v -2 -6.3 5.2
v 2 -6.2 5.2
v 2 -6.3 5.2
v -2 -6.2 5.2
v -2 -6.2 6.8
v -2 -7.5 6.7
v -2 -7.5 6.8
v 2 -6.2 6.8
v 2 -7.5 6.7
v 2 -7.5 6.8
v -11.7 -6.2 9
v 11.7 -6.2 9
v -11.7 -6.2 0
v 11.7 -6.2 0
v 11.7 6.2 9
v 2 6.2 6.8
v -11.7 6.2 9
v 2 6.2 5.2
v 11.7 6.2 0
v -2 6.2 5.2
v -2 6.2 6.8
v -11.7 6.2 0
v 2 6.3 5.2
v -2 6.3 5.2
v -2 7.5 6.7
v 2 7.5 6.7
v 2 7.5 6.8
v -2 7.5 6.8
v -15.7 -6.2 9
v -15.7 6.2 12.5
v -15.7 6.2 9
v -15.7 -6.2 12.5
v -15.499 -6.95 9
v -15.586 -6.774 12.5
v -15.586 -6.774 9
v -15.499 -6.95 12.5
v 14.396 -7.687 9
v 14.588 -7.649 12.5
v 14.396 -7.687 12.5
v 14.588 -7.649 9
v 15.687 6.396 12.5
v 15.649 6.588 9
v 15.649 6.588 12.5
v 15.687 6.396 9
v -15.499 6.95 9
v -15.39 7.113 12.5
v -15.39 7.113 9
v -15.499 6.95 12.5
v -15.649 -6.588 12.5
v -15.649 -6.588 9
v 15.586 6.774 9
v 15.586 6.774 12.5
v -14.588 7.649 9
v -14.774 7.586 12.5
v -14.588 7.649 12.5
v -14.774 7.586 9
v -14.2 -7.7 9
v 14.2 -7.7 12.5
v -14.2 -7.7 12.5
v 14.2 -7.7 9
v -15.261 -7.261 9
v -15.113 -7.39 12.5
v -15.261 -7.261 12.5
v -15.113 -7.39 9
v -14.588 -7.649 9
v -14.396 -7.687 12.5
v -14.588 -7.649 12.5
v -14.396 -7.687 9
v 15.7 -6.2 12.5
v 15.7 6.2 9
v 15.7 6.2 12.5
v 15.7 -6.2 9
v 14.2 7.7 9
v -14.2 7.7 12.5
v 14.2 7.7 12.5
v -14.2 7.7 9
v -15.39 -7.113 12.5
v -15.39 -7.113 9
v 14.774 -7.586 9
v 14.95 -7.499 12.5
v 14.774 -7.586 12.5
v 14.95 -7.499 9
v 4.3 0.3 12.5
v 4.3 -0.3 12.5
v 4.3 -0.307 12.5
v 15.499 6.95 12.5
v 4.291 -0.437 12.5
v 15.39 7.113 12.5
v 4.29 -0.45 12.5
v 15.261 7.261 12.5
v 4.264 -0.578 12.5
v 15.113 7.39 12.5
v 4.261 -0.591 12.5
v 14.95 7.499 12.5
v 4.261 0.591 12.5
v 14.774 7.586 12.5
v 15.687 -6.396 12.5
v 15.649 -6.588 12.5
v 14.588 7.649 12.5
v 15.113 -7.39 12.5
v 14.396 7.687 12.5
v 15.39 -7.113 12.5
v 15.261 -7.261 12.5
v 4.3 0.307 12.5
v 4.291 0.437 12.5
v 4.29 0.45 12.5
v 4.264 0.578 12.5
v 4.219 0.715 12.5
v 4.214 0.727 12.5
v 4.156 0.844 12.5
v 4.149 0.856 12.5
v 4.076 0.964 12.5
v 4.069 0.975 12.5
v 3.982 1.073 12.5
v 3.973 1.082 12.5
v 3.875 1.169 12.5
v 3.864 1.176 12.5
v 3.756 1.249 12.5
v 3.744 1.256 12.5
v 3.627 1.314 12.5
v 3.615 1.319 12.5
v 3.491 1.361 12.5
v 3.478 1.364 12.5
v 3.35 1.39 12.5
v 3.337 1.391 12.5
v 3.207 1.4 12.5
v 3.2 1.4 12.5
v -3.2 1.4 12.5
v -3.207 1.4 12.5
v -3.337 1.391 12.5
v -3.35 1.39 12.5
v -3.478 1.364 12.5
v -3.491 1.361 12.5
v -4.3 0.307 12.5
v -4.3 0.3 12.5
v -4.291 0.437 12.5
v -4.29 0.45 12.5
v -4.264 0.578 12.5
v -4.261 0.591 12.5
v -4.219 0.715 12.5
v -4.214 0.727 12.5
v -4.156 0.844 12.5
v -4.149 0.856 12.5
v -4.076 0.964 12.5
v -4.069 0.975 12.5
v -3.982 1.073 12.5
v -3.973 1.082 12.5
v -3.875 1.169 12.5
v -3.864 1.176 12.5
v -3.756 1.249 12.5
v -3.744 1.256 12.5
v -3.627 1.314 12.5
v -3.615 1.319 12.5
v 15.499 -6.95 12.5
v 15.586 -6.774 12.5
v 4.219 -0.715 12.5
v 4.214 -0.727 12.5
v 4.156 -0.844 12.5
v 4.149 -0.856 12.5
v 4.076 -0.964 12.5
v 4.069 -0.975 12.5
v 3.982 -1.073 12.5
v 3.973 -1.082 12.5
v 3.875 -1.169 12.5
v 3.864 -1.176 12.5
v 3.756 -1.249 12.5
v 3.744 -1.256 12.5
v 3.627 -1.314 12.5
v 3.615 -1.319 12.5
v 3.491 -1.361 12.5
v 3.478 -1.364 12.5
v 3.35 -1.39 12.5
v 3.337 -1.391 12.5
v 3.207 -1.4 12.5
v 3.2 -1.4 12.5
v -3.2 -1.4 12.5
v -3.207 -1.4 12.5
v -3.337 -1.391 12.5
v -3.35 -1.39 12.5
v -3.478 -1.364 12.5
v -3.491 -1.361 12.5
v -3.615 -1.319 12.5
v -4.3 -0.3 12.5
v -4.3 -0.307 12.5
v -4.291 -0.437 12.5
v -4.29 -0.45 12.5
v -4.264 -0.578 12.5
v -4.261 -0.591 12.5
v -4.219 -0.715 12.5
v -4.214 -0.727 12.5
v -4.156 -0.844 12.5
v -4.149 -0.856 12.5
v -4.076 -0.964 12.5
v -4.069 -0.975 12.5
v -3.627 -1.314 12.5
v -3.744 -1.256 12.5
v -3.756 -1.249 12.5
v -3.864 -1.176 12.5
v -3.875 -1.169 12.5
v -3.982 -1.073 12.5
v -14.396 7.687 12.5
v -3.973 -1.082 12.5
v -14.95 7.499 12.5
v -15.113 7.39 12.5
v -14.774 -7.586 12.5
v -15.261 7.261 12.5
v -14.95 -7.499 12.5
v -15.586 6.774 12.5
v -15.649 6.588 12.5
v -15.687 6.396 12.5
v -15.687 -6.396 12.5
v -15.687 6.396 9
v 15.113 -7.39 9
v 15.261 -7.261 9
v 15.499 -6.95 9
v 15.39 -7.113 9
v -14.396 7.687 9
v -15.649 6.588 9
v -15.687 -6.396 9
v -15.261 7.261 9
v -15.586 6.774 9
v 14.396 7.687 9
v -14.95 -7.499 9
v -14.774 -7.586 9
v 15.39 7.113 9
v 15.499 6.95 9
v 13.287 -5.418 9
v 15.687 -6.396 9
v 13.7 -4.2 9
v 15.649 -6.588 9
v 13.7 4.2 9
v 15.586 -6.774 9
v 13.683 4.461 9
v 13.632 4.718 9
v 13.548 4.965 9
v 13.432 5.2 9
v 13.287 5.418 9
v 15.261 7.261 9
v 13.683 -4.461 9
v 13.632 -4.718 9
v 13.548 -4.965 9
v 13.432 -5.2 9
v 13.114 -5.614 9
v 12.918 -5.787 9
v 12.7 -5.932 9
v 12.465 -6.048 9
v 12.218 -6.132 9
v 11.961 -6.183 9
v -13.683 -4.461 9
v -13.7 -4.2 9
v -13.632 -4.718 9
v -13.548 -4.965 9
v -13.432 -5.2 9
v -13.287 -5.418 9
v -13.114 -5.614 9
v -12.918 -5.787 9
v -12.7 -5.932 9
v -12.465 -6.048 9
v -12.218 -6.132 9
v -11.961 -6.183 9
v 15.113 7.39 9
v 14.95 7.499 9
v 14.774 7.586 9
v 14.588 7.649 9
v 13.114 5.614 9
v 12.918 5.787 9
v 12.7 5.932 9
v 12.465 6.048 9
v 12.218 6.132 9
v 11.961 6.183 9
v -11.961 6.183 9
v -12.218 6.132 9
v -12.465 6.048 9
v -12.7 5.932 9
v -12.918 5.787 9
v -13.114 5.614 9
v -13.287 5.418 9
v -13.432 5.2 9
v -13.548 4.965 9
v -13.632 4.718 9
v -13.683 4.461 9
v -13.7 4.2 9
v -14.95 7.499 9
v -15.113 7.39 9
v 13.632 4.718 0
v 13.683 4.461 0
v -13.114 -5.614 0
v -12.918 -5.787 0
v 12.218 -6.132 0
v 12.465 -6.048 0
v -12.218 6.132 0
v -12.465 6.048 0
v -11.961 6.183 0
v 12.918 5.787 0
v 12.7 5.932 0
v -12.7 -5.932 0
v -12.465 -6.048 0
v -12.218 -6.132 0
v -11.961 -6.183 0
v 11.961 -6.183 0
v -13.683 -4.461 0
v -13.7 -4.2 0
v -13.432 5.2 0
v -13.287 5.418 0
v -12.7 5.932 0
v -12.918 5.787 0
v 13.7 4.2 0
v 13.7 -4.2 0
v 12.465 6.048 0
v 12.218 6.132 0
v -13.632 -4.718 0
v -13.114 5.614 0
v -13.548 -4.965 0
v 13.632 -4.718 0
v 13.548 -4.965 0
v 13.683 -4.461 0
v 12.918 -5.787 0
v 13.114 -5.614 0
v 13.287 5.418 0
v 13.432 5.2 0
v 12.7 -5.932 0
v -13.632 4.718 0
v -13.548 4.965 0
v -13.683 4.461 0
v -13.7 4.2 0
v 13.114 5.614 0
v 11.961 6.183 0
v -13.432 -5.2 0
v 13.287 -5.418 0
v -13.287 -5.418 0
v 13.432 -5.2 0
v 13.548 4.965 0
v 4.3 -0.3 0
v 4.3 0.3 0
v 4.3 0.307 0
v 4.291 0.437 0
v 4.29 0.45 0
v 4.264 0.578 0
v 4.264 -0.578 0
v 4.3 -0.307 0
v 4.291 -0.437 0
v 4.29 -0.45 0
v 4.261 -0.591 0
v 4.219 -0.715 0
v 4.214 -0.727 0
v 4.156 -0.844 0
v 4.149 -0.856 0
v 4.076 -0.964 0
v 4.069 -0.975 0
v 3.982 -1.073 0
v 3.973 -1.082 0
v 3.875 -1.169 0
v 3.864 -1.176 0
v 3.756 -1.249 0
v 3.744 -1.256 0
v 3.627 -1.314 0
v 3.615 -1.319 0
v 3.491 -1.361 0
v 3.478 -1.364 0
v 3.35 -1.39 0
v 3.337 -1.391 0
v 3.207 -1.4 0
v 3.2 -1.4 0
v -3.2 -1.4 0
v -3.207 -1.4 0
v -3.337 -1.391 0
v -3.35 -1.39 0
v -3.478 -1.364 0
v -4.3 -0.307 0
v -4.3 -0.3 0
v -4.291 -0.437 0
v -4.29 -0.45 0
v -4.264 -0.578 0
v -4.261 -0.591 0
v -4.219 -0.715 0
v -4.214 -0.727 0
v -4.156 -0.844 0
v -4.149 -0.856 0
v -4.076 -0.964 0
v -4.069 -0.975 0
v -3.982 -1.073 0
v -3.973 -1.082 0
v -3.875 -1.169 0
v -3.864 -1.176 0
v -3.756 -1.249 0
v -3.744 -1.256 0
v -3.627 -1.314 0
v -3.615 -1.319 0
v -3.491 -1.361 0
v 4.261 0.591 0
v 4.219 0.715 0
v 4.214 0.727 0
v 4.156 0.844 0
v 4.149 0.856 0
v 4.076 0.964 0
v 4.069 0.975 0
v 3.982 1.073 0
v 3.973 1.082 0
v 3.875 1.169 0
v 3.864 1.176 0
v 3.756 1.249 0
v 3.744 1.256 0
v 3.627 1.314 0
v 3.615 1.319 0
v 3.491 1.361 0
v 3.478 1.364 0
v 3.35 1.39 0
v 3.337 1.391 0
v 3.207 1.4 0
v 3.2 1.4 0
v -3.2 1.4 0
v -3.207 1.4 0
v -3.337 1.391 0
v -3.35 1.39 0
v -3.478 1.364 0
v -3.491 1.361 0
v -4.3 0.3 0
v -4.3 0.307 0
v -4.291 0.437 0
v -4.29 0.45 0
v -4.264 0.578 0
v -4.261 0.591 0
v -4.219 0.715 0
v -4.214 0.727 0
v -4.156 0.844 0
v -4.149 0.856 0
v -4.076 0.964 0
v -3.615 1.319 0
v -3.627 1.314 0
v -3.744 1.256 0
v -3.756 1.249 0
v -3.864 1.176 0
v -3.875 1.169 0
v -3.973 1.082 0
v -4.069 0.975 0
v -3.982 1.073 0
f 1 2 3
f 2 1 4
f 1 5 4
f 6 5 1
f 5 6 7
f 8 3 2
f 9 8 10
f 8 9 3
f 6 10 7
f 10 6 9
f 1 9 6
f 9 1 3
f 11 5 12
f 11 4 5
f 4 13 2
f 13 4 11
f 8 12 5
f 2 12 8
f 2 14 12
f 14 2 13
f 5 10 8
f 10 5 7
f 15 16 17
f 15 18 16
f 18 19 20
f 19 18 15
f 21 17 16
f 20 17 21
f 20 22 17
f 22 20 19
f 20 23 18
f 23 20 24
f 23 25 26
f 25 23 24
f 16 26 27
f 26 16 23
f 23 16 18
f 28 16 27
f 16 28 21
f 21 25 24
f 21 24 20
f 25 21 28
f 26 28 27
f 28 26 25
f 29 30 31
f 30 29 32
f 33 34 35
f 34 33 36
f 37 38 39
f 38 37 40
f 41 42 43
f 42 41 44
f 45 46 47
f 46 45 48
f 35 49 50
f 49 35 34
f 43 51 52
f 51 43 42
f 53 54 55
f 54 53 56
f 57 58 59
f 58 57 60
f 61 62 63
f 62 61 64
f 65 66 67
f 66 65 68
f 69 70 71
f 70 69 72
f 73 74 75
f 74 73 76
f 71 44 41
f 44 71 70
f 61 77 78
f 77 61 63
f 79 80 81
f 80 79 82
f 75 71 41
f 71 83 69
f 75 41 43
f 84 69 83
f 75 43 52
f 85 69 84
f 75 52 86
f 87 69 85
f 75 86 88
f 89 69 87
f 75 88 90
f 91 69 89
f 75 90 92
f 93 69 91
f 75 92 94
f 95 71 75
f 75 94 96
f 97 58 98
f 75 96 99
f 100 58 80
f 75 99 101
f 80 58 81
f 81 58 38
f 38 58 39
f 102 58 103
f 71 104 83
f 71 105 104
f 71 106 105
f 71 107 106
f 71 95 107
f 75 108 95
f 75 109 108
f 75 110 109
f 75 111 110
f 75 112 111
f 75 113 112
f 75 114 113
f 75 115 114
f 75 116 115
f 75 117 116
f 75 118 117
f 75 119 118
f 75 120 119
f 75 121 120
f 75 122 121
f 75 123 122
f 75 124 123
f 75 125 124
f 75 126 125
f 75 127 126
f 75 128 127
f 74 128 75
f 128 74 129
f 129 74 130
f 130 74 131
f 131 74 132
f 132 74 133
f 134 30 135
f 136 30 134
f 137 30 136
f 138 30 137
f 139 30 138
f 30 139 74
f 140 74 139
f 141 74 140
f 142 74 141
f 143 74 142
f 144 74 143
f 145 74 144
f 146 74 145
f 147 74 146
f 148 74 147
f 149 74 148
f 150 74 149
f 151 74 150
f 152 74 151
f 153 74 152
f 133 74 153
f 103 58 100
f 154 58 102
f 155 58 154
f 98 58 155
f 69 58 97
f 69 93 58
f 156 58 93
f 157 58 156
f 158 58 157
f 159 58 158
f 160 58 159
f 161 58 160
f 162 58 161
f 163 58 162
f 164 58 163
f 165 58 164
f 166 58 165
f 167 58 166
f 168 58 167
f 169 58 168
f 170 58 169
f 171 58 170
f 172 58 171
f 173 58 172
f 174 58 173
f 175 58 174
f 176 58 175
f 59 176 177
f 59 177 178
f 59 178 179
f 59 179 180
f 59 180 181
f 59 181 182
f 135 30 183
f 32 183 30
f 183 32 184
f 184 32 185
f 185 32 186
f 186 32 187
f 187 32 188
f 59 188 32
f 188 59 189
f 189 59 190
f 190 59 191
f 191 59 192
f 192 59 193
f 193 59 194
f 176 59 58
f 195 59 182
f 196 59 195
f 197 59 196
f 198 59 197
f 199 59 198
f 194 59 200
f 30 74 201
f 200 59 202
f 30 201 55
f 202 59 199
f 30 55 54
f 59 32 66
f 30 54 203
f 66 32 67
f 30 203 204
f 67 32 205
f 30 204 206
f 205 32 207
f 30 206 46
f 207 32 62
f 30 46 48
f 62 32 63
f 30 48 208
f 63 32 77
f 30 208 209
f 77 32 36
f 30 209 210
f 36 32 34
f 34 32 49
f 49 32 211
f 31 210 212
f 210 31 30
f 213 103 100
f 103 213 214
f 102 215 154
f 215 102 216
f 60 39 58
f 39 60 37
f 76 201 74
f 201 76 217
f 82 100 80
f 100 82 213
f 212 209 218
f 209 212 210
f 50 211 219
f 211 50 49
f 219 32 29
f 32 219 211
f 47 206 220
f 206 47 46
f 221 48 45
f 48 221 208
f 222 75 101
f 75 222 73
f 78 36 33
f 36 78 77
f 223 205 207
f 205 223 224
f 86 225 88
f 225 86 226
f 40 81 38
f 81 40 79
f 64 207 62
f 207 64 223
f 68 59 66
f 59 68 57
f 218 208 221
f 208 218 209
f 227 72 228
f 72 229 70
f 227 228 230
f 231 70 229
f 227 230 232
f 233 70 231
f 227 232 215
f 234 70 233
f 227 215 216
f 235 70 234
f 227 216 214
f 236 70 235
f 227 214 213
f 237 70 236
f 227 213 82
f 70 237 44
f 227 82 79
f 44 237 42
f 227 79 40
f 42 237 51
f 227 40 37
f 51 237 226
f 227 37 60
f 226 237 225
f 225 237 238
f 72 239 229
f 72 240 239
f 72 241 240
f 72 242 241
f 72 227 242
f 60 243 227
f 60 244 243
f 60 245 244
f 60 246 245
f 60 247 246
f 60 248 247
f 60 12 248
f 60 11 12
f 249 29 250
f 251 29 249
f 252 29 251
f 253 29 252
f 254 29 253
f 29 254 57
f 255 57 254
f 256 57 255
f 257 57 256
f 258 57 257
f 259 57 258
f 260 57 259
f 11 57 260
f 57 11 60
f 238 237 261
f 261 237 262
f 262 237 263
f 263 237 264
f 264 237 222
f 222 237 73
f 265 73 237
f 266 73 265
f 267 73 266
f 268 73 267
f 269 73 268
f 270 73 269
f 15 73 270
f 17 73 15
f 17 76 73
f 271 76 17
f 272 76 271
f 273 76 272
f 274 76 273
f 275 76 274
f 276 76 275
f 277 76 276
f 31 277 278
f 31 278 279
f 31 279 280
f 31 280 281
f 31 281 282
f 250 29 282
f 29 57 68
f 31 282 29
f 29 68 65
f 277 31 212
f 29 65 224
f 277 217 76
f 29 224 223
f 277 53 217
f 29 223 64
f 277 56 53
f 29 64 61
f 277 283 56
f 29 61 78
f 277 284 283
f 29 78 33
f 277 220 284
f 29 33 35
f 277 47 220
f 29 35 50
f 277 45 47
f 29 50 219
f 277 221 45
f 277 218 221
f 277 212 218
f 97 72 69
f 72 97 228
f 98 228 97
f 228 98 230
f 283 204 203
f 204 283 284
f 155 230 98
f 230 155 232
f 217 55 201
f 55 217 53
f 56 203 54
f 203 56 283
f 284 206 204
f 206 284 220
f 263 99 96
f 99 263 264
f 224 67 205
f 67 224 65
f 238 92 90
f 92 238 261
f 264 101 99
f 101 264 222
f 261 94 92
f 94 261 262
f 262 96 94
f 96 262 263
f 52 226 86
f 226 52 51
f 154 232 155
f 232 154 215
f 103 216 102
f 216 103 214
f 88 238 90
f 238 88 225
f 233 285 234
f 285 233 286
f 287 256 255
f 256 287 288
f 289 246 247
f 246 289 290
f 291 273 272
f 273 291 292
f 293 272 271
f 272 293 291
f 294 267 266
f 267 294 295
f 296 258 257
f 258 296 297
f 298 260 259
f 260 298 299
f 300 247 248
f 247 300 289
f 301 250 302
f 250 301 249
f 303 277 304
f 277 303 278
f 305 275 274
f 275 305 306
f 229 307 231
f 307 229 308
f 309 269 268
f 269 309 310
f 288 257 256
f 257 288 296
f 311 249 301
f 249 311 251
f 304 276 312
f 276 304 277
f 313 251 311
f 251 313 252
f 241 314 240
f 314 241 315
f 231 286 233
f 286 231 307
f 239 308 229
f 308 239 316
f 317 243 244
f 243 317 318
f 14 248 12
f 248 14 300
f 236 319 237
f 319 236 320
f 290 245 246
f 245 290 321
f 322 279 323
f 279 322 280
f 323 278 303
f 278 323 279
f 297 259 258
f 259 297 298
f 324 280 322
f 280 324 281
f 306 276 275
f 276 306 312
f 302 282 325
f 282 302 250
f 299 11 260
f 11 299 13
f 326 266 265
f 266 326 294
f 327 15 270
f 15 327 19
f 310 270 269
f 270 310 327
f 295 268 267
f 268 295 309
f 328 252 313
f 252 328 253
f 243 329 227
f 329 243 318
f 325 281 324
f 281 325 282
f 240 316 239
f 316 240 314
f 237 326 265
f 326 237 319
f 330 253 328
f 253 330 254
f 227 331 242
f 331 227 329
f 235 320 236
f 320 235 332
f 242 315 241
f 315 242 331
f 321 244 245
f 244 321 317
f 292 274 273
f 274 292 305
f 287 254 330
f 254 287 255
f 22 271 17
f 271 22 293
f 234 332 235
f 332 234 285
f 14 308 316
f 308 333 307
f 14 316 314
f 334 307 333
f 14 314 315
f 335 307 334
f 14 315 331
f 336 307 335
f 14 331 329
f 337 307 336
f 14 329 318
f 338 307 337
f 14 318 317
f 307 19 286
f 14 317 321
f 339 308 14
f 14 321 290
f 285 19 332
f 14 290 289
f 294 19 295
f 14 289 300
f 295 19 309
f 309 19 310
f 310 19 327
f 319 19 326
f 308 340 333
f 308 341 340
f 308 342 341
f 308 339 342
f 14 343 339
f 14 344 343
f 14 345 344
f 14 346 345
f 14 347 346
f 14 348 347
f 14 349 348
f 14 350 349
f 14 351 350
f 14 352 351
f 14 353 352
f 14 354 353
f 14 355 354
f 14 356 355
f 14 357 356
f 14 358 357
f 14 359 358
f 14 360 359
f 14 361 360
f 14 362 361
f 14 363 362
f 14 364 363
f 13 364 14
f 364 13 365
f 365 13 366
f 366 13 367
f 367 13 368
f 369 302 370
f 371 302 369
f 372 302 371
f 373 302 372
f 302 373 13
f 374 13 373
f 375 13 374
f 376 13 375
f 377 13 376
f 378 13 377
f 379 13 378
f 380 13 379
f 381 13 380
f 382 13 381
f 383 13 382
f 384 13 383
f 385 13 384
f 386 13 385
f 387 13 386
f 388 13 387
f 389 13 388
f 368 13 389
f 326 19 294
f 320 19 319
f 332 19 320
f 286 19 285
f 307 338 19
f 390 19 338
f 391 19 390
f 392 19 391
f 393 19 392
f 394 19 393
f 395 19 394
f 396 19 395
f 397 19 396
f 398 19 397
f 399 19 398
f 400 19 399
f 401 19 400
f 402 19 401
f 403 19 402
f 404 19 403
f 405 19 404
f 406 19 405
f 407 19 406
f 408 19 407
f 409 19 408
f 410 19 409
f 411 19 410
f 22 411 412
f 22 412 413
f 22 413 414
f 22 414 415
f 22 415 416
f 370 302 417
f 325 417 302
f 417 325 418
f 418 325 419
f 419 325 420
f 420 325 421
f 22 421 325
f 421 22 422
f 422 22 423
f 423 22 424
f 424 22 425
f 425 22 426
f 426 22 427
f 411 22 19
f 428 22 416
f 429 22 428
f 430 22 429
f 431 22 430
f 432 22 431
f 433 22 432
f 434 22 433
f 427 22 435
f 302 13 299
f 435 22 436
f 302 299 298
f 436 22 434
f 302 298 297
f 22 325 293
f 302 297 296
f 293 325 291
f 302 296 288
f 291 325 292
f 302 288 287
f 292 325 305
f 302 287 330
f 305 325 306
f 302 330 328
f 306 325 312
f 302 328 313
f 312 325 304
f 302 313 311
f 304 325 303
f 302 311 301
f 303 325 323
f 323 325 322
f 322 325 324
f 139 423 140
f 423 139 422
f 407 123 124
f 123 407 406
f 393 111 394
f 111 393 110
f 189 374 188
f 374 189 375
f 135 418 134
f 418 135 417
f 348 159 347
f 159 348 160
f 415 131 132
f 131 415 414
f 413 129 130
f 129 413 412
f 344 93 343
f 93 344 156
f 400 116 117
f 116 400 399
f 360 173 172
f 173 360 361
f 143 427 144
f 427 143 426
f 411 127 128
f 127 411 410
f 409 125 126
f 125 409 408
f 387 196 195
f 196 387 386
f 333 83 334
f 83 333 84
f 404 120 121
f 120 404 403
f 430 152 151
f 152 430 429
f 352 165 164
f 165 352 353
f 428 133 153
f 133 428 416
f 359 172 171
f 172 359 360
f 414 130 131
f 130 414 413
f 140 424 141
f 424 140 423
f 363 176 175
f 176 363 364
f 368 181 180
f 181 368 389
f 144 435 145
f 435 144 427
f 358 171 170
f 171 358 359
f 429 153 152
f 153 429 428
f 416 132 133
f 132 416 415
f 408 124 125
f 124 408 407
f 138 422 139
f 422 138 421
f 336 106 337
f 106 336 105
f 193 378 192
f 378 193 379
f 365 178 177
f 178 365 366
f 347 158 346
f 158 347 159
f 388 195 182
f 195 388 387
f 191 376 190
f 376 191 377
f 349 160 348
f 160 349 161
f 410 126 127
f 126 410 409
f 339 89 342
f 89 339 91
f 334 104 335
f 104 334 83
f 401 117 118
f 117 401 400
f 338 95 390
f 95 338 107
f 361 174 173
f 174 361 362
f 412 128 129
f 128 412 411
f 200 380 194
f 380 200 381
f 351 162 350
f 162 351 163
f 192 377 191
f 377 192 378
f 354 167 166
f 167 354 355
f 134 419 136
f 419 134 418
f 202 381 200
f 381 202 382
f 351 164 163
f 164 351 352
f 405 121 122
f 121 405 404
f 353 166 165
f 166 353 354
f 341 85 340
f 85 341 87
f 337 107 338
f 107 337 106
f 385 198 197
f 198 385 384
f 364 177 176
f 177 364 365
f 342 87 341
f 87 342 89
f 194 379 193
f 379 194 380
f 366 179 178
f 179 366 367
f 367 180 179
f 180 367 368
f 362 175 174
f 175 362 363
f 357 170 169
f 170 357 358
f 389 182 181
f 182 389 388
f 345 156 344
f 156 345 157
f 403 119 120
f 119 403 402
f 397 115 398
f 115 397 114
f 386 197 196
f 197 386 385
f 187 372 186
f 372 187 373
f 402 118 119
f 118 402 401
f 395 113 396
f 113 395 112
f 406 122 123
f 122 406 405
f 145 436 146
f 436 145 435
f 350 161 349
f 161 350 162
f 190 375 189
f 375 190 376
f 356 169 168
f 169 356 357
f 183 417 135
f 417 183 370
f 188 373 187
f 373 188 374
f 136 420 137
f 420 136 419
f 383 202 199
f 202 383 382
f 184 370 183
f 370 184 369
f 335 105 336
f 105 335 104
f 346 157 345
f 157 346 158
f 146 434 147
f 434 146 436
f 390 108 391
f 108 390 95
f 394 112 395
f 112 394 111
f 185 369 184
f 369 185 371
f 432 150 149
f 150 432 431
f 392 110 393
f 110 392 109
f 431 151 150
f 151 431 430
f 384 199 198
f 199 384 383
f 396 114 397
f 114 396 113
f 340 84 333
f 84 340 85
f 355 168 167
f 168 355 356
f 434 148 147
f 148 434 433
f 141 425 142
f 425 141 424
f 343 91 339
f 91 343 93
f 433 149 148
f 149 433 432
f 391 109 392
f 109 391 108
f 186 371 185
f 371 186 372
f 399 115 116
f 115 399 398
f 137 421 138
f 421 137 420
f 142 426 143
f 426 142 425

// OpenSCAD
// file: insert_base.scad
// ============================================
// MODULAR CABLE ORGANIZER - BASE INSERT MODULE
// ============================================
// This is the parent module for all insert types
// Include this file and call insert_with_port() with a port shape
// ============================================

include <parameters.scad>

// === BASE INSERT WITH CUSTOM BODY DEPTH ===
module insert_blank_custom(body_depth) {
    union() {
        // Base plate (sits in frame slot)
        rounded_box_rect(insert_width, insert_height, insert_base_depth, 1.5);
        
        // Body (protrudes out front) - custom depth
        translate([0, 0, insert_base_depth])
            rounded_box_rect(insert_body_width, insert_body_height, body_depth, 2);
        
        // Snap tabs on all 4 sides
        snap_tabs_all();
    }
}

// === BASE INSERT (default depth - for backwards compatibility) ===
module insert_blank() {
    insert_blank_custom(insert_body_depth);
}

// === INSERT WITH THROUGH-HOLE PORT (custom depth) ===
// Pass body_depth and a 2D shape as children
module insert_with_port_custom(body_depth) {
    total_depth = insert_base_depth + body_depth;
    difference() {
        insert_blank_custom(body_depth);
        
        // Cut port hole ALL THE WAY through (tube shape)
        translate([0, 0, -0.1])
            linear_extrude(total_depth + 0.2)
            offset(r=port_clearance)  // Add clearance to port opening
            children();
    }
}

// === INSERT WITH THROUGH-HOLE PORT (default depth) ===
module insert_with_port() {
    insert_with_port_custom(insert_body_depth) children();
}

// === PRE-MADE INSERT MODULES WITH CORRECT DEPTHS ===
module insert_usbc() {
    insert_with_port_custom(usbc_body_depth) port_usbc();
}

module insert_usba() {
    insert_with_port_custom(usba_body_depth) port_usba();
}

module insert_usb_mini() {
    insert_with_port_custom(usb_mini_body_depth) port_usb_mini();
}

module insert_usb_micro() {
    insert_with_port_custom(usb_micro_body_depth) port_usb_micro();
}

module insert_usb_b() {
    insert_with_port_custom(usb_b_body_depth) port_usb_b();
}

module insert_lightning() {
    insert_with_port_custom(lightning_body_depth) port_lightning();
}

module insert_hdmi() {
    insert_with_port_custom(hdmi_body_depth) port_hdmi();
}

module insert_audio_jack() {
    insert_with_port_custom(audio_jack_body_depth) port_audio_jack();
}

// === SNAP TABS (on neck/body - catch on frame cutouts) ===
// Tabs are on the body, positioned to engage with frame wall cutouts
module snap_tabs_all() {
    // Position tabs up on body (clear of base/frame)
    tab_z = insert_base_depth + snap_tab_offset;
    
    // Tabs on all 4 sides of the body
    for (angle = [0, 90, 180, 270]) {
        rotate([0, 0, angle])
            translate([0, insert_body_height/2, tab_z])
            neck_snap_tab();
    }
}

module neck_snap_tab() {
    // Wedge shape (FLIPPED): 
    // - Peak/taper on BOTTOM - slides past back plate when inserting
    // - Flat on TOP - catches and holds
    hull() {
        // Peak of wedge (protruding, at BOTTOM of tab)
        translate([-snap_tab_width/2, snap_tab_protrude, 0])
            cube([snap_tab_width, 0.1, 0.1]);
        // Flat top (at body surface, TOP of tab)
        translate([-snap_tab_width/2, 0, snap_tab_thick])
            cube([snap_tab_width, 0.1, 0.1]);
        // Base of wedge (at body surface, bottom)
        translate([-snap_tab_width/2, 0, 0])
            cube([snap_tab_width, 0.1, 0.1]);
    }
}

module snap_tab_horizontal() {
    hull() {
        translate([0, -snap_tab_protrude/2, 0])
            cube([snap_tab_width, 0.1, snap_tab_thick], center=true);
        translate([0, snap_tab_protrude/2, snap_tab_thick * 0.2])
            cube([snap_tab_width, 0.1, snap_tab_thick * 0.6], center=true);
    }
}

module snap_tab_vertical() {
    hull() {
        translate([-snap_tab_protrude/2, 0, 0])
            cube([0.1, snap_tab_width, snap_tab_thick], center=true);
        translate([snap_tab_protrude/2, 0, snap_tab_thick * 0.2])
            cube([0.1, snap_tab_width, snap_tab_thick * 0.6], center=true);
    }
}

// === UTILITY MODULES ===
module rounded_box_rect(w, d, h, r) {
    translate([0, 0, h/2])
        hull() {
            for (x = [-1, 1], y = [-1, 1])
                translate([x * (w/2 - r), y * (d/2 - r), 0])
                    cylinder(h=h, r=r, center=true);
        }
}

// === PORT SHAPE MODULES (2D) ===
// These define the cutout shapes for each connector type

module port_rounded_rect(w, h, r) {
    // Standard rounded rectangle
    hull() {
        for (x = [-1, 1], y = [-1, 1])
            translate([x * (w/2 - r), y * (h/2 - r)])
                circle(r=r);
    }
}

module port_usbc() {
    port_rounded_rect(usbc_w, usbc_h, usbc_r);
}

module port_usba() {
    port_rounded_rect(usba_w, usba_h, usba_r);
}

module port_usb_mini() {
    port_rounded_rect(usb_mini_w, usb_mini_h, usb_mini_r);
}

module port_usb_micro() {
    port_rounded_rect(usb_micro_w, usb_micro_h, usb_micro_r);
}

module port_usb_b() {
    // USB-B has beveled top corners
    hull() {
        // Bottom corners (full radius)
        for (x = [-1, 1])
            translate([x * (usb_b_w/2 - usb_b_r), -(usb_b_h/2 - usb_b_r)])
                circle(r=usb_b_r);
        // Top corners (chamfered - moved inward)
        for (x = [-1, 1])
            translate([x * (usb_b_w/2 - usb_b_r - 1), (usb_b_h/2 - usb_b_r)])
                circle(r=usb_b_r);
    }
}

module port_lightning() {
    port_rounded_rect(lightning_w, lightning_h, lightning_r);
}

module port_hdmi() {
    // HDMI is tapered (wider at top)
    hull() {
        // Top (wider)
        for (x = [-1, 1])
            translate([x * (hdmi_w/2 - hdmi_r), (hdmi_h/2 - hdmi_r)])
                circle(r=hdmi_r);
        // Bottom (narrower)
        for (x = [-1, 1])
            translate([x * (hdmi_w/2 - hdmi_r - 1), -(hdmi_h/2 - hdmi_r)])
                circle(r=hdmi_r);
    }
}

module port_audio_jack() {
    circle(d=audio_jack_dia);
}

module port_label_recess() {
    // Shallow rectangular recess for labels
    square([label_w, label_h], center=true);
}

// === RENDER (for testing this file directly) ===
// insert_blank();
// file: parameters.scad
// ============================================
// MODULAR CABLE ORGANIZER - SHARED PARAMETERS
// ============================================
// All dimensions in mm - include this in all files
// ============================================

$fn = 48;

// === TOLERANCES ===
clearance = 0.3;
port_clearance = 0.1;  // Extra clearance for port openings (reduced - 0.2 was too loose for USB-C)
wall = 1.6;

// === SLOT DIMENSIONS (2:1 aspect ratio) - scaled to 2/3 ===
slot_width = 32;  // Reduced by 1mm for more compact insert
slot_height = 16;  // Reduced by 1mm for more compact insert
slot_depth = 4;  // Reduced from 6mm - less frame depth needed

// === FRAME STRUCTURE ===
frame_wall = 0.5;   // Reduced for more compact frame
frame_border = 8;  // Increased by 10mm for mounting holes with countersink
frame_back = 2;     // Slightly thicker for snap catch strength
mount_hole_dia = 3;
countersink_dia = 6;  // Diameter of countersink for screw heads
countersink_depth = 2;  // Depth of countersink

// === GRID ===
grid_cols = 2;
grid_rows = 2;

// === INSERT BASE DIMENSIONS ===
insert_width = slot_width - (2 * clearance);
insert_height = slot_height - (2 * clearance);
insert_base_depth = slot_depth - 0.5;

// === INSERT BODY (protrudes from frame) ===
insert_body_width = insert_width - 4;
insert_body_height = insert_height - 3;
insert_body_depth = 12;  // Deep enough to accommodate male cable connectors
insert_top_thick = 1.5;  // Top platform thickness

// === SNAP TABS (on neck/body - catch on back plate) ===
snap_tab_width = 4;
snap_tab_protrude = 1.2;  // How far tab sticks out from body
snap_tab_thick = 1.5;     // Z thickness of tab
snap_tab_offset = 2.2;      // Distance from base to tab bottom on insert (increased to clear frame)

// === CONNECTOR PORT DIMENSIONS & BODY DEPTHS ===
// Port dimensions from reference blueprints
// Body depths sized to match typical male connector lengths

// USB-C: 8.4 x 2.6mm, male connector ~9mm
usbc_w = 8.4;
usbc_h = 2.6;
usbc_r = 1.0;
usbc_body_depth = 9;

// USB-A: 14.0 x 6.5mm, male connector ~13mm
usba_w = 14.0;
usba_h = 6.5;
usba_r = 0.5;
usba_body_depth = 13;

// USB Mini: 6.9 x 3.0mm, male connector ~9mm
usb_mini_w = 6.9;
usb_mini_h = 3.0;
usb_mini_r = 0.5;
usb_mini_body_depth = 9;

// USB Micro: 6.9 x 1.8mm, male connector ~7mm
usb_micro_w = 6.9;
usb_micro_h = 1.8;
usb_micro_r = 0.3;
usb_micro_body_depth = 7;

// USB-B: 8.0 x 7.5mm, male connector ~14mm
usb_b_w = 8.0;
usb_b_h = 7.5;
usb_b_r = 1.0;
usb_b_body_depth = 14;

// Lightning: 6.7 x 1.5mm, male connector ~8mm
lightning_w = 6.7;
lightning_h = 1.5;
lightning_r = 0.5;
lightning_body_depth = 8;

// HDMI: 14.0 x 4.5mm, male connector ~16mm
hdmi_w = 14.0;
hdmi_h = 4.5;
hdmi_r = 0.5;
hdmi_body_depth = 16;

// 3.5mm Audio Jack: male plug ~14mm
audio_jack_dia = 6.0;
audio_jack_body_depth = 14;

// Blank/Label: recessed area for label
label_w = 30;
label_h = 12;
label_depth = 0.8;

// === CALCULATED VALUES ===
frame_total_depth = frame_back + slot_depth;
grid_width = (grid_cols * slot_width) + ((grid_cols - 1) * frame_wall);
grid_height = (grid_rows * slot_height) + ((grid_rows - 1) * frame_wall);
frame_width = grid_width + (2 * frame_border);
frame_height_total = grid_height + (2 * frame_border);
insert_total_depth = insert_base_depth + insert_body_depth;
// main file
// ============================================
// PRINT FILE: USB-C Insert
// ============================================
// Body depth: 9mm (matches USB-C male connector)
// Print with port side DOWN (flat on bed)
// No supports needed - through-hole design
// ============================================

include <parameters.scad>
include <insert_base.scad>

// USB-C insert - oriented for printing (port side down)
// Uses usbc_body_depth (9mm) for correct height
total_depth = insert_base_depth + usbc_body_depth;

rotate([180, 0, 0])
translate([0, 0, -total_depth])
    insert_usbc();
